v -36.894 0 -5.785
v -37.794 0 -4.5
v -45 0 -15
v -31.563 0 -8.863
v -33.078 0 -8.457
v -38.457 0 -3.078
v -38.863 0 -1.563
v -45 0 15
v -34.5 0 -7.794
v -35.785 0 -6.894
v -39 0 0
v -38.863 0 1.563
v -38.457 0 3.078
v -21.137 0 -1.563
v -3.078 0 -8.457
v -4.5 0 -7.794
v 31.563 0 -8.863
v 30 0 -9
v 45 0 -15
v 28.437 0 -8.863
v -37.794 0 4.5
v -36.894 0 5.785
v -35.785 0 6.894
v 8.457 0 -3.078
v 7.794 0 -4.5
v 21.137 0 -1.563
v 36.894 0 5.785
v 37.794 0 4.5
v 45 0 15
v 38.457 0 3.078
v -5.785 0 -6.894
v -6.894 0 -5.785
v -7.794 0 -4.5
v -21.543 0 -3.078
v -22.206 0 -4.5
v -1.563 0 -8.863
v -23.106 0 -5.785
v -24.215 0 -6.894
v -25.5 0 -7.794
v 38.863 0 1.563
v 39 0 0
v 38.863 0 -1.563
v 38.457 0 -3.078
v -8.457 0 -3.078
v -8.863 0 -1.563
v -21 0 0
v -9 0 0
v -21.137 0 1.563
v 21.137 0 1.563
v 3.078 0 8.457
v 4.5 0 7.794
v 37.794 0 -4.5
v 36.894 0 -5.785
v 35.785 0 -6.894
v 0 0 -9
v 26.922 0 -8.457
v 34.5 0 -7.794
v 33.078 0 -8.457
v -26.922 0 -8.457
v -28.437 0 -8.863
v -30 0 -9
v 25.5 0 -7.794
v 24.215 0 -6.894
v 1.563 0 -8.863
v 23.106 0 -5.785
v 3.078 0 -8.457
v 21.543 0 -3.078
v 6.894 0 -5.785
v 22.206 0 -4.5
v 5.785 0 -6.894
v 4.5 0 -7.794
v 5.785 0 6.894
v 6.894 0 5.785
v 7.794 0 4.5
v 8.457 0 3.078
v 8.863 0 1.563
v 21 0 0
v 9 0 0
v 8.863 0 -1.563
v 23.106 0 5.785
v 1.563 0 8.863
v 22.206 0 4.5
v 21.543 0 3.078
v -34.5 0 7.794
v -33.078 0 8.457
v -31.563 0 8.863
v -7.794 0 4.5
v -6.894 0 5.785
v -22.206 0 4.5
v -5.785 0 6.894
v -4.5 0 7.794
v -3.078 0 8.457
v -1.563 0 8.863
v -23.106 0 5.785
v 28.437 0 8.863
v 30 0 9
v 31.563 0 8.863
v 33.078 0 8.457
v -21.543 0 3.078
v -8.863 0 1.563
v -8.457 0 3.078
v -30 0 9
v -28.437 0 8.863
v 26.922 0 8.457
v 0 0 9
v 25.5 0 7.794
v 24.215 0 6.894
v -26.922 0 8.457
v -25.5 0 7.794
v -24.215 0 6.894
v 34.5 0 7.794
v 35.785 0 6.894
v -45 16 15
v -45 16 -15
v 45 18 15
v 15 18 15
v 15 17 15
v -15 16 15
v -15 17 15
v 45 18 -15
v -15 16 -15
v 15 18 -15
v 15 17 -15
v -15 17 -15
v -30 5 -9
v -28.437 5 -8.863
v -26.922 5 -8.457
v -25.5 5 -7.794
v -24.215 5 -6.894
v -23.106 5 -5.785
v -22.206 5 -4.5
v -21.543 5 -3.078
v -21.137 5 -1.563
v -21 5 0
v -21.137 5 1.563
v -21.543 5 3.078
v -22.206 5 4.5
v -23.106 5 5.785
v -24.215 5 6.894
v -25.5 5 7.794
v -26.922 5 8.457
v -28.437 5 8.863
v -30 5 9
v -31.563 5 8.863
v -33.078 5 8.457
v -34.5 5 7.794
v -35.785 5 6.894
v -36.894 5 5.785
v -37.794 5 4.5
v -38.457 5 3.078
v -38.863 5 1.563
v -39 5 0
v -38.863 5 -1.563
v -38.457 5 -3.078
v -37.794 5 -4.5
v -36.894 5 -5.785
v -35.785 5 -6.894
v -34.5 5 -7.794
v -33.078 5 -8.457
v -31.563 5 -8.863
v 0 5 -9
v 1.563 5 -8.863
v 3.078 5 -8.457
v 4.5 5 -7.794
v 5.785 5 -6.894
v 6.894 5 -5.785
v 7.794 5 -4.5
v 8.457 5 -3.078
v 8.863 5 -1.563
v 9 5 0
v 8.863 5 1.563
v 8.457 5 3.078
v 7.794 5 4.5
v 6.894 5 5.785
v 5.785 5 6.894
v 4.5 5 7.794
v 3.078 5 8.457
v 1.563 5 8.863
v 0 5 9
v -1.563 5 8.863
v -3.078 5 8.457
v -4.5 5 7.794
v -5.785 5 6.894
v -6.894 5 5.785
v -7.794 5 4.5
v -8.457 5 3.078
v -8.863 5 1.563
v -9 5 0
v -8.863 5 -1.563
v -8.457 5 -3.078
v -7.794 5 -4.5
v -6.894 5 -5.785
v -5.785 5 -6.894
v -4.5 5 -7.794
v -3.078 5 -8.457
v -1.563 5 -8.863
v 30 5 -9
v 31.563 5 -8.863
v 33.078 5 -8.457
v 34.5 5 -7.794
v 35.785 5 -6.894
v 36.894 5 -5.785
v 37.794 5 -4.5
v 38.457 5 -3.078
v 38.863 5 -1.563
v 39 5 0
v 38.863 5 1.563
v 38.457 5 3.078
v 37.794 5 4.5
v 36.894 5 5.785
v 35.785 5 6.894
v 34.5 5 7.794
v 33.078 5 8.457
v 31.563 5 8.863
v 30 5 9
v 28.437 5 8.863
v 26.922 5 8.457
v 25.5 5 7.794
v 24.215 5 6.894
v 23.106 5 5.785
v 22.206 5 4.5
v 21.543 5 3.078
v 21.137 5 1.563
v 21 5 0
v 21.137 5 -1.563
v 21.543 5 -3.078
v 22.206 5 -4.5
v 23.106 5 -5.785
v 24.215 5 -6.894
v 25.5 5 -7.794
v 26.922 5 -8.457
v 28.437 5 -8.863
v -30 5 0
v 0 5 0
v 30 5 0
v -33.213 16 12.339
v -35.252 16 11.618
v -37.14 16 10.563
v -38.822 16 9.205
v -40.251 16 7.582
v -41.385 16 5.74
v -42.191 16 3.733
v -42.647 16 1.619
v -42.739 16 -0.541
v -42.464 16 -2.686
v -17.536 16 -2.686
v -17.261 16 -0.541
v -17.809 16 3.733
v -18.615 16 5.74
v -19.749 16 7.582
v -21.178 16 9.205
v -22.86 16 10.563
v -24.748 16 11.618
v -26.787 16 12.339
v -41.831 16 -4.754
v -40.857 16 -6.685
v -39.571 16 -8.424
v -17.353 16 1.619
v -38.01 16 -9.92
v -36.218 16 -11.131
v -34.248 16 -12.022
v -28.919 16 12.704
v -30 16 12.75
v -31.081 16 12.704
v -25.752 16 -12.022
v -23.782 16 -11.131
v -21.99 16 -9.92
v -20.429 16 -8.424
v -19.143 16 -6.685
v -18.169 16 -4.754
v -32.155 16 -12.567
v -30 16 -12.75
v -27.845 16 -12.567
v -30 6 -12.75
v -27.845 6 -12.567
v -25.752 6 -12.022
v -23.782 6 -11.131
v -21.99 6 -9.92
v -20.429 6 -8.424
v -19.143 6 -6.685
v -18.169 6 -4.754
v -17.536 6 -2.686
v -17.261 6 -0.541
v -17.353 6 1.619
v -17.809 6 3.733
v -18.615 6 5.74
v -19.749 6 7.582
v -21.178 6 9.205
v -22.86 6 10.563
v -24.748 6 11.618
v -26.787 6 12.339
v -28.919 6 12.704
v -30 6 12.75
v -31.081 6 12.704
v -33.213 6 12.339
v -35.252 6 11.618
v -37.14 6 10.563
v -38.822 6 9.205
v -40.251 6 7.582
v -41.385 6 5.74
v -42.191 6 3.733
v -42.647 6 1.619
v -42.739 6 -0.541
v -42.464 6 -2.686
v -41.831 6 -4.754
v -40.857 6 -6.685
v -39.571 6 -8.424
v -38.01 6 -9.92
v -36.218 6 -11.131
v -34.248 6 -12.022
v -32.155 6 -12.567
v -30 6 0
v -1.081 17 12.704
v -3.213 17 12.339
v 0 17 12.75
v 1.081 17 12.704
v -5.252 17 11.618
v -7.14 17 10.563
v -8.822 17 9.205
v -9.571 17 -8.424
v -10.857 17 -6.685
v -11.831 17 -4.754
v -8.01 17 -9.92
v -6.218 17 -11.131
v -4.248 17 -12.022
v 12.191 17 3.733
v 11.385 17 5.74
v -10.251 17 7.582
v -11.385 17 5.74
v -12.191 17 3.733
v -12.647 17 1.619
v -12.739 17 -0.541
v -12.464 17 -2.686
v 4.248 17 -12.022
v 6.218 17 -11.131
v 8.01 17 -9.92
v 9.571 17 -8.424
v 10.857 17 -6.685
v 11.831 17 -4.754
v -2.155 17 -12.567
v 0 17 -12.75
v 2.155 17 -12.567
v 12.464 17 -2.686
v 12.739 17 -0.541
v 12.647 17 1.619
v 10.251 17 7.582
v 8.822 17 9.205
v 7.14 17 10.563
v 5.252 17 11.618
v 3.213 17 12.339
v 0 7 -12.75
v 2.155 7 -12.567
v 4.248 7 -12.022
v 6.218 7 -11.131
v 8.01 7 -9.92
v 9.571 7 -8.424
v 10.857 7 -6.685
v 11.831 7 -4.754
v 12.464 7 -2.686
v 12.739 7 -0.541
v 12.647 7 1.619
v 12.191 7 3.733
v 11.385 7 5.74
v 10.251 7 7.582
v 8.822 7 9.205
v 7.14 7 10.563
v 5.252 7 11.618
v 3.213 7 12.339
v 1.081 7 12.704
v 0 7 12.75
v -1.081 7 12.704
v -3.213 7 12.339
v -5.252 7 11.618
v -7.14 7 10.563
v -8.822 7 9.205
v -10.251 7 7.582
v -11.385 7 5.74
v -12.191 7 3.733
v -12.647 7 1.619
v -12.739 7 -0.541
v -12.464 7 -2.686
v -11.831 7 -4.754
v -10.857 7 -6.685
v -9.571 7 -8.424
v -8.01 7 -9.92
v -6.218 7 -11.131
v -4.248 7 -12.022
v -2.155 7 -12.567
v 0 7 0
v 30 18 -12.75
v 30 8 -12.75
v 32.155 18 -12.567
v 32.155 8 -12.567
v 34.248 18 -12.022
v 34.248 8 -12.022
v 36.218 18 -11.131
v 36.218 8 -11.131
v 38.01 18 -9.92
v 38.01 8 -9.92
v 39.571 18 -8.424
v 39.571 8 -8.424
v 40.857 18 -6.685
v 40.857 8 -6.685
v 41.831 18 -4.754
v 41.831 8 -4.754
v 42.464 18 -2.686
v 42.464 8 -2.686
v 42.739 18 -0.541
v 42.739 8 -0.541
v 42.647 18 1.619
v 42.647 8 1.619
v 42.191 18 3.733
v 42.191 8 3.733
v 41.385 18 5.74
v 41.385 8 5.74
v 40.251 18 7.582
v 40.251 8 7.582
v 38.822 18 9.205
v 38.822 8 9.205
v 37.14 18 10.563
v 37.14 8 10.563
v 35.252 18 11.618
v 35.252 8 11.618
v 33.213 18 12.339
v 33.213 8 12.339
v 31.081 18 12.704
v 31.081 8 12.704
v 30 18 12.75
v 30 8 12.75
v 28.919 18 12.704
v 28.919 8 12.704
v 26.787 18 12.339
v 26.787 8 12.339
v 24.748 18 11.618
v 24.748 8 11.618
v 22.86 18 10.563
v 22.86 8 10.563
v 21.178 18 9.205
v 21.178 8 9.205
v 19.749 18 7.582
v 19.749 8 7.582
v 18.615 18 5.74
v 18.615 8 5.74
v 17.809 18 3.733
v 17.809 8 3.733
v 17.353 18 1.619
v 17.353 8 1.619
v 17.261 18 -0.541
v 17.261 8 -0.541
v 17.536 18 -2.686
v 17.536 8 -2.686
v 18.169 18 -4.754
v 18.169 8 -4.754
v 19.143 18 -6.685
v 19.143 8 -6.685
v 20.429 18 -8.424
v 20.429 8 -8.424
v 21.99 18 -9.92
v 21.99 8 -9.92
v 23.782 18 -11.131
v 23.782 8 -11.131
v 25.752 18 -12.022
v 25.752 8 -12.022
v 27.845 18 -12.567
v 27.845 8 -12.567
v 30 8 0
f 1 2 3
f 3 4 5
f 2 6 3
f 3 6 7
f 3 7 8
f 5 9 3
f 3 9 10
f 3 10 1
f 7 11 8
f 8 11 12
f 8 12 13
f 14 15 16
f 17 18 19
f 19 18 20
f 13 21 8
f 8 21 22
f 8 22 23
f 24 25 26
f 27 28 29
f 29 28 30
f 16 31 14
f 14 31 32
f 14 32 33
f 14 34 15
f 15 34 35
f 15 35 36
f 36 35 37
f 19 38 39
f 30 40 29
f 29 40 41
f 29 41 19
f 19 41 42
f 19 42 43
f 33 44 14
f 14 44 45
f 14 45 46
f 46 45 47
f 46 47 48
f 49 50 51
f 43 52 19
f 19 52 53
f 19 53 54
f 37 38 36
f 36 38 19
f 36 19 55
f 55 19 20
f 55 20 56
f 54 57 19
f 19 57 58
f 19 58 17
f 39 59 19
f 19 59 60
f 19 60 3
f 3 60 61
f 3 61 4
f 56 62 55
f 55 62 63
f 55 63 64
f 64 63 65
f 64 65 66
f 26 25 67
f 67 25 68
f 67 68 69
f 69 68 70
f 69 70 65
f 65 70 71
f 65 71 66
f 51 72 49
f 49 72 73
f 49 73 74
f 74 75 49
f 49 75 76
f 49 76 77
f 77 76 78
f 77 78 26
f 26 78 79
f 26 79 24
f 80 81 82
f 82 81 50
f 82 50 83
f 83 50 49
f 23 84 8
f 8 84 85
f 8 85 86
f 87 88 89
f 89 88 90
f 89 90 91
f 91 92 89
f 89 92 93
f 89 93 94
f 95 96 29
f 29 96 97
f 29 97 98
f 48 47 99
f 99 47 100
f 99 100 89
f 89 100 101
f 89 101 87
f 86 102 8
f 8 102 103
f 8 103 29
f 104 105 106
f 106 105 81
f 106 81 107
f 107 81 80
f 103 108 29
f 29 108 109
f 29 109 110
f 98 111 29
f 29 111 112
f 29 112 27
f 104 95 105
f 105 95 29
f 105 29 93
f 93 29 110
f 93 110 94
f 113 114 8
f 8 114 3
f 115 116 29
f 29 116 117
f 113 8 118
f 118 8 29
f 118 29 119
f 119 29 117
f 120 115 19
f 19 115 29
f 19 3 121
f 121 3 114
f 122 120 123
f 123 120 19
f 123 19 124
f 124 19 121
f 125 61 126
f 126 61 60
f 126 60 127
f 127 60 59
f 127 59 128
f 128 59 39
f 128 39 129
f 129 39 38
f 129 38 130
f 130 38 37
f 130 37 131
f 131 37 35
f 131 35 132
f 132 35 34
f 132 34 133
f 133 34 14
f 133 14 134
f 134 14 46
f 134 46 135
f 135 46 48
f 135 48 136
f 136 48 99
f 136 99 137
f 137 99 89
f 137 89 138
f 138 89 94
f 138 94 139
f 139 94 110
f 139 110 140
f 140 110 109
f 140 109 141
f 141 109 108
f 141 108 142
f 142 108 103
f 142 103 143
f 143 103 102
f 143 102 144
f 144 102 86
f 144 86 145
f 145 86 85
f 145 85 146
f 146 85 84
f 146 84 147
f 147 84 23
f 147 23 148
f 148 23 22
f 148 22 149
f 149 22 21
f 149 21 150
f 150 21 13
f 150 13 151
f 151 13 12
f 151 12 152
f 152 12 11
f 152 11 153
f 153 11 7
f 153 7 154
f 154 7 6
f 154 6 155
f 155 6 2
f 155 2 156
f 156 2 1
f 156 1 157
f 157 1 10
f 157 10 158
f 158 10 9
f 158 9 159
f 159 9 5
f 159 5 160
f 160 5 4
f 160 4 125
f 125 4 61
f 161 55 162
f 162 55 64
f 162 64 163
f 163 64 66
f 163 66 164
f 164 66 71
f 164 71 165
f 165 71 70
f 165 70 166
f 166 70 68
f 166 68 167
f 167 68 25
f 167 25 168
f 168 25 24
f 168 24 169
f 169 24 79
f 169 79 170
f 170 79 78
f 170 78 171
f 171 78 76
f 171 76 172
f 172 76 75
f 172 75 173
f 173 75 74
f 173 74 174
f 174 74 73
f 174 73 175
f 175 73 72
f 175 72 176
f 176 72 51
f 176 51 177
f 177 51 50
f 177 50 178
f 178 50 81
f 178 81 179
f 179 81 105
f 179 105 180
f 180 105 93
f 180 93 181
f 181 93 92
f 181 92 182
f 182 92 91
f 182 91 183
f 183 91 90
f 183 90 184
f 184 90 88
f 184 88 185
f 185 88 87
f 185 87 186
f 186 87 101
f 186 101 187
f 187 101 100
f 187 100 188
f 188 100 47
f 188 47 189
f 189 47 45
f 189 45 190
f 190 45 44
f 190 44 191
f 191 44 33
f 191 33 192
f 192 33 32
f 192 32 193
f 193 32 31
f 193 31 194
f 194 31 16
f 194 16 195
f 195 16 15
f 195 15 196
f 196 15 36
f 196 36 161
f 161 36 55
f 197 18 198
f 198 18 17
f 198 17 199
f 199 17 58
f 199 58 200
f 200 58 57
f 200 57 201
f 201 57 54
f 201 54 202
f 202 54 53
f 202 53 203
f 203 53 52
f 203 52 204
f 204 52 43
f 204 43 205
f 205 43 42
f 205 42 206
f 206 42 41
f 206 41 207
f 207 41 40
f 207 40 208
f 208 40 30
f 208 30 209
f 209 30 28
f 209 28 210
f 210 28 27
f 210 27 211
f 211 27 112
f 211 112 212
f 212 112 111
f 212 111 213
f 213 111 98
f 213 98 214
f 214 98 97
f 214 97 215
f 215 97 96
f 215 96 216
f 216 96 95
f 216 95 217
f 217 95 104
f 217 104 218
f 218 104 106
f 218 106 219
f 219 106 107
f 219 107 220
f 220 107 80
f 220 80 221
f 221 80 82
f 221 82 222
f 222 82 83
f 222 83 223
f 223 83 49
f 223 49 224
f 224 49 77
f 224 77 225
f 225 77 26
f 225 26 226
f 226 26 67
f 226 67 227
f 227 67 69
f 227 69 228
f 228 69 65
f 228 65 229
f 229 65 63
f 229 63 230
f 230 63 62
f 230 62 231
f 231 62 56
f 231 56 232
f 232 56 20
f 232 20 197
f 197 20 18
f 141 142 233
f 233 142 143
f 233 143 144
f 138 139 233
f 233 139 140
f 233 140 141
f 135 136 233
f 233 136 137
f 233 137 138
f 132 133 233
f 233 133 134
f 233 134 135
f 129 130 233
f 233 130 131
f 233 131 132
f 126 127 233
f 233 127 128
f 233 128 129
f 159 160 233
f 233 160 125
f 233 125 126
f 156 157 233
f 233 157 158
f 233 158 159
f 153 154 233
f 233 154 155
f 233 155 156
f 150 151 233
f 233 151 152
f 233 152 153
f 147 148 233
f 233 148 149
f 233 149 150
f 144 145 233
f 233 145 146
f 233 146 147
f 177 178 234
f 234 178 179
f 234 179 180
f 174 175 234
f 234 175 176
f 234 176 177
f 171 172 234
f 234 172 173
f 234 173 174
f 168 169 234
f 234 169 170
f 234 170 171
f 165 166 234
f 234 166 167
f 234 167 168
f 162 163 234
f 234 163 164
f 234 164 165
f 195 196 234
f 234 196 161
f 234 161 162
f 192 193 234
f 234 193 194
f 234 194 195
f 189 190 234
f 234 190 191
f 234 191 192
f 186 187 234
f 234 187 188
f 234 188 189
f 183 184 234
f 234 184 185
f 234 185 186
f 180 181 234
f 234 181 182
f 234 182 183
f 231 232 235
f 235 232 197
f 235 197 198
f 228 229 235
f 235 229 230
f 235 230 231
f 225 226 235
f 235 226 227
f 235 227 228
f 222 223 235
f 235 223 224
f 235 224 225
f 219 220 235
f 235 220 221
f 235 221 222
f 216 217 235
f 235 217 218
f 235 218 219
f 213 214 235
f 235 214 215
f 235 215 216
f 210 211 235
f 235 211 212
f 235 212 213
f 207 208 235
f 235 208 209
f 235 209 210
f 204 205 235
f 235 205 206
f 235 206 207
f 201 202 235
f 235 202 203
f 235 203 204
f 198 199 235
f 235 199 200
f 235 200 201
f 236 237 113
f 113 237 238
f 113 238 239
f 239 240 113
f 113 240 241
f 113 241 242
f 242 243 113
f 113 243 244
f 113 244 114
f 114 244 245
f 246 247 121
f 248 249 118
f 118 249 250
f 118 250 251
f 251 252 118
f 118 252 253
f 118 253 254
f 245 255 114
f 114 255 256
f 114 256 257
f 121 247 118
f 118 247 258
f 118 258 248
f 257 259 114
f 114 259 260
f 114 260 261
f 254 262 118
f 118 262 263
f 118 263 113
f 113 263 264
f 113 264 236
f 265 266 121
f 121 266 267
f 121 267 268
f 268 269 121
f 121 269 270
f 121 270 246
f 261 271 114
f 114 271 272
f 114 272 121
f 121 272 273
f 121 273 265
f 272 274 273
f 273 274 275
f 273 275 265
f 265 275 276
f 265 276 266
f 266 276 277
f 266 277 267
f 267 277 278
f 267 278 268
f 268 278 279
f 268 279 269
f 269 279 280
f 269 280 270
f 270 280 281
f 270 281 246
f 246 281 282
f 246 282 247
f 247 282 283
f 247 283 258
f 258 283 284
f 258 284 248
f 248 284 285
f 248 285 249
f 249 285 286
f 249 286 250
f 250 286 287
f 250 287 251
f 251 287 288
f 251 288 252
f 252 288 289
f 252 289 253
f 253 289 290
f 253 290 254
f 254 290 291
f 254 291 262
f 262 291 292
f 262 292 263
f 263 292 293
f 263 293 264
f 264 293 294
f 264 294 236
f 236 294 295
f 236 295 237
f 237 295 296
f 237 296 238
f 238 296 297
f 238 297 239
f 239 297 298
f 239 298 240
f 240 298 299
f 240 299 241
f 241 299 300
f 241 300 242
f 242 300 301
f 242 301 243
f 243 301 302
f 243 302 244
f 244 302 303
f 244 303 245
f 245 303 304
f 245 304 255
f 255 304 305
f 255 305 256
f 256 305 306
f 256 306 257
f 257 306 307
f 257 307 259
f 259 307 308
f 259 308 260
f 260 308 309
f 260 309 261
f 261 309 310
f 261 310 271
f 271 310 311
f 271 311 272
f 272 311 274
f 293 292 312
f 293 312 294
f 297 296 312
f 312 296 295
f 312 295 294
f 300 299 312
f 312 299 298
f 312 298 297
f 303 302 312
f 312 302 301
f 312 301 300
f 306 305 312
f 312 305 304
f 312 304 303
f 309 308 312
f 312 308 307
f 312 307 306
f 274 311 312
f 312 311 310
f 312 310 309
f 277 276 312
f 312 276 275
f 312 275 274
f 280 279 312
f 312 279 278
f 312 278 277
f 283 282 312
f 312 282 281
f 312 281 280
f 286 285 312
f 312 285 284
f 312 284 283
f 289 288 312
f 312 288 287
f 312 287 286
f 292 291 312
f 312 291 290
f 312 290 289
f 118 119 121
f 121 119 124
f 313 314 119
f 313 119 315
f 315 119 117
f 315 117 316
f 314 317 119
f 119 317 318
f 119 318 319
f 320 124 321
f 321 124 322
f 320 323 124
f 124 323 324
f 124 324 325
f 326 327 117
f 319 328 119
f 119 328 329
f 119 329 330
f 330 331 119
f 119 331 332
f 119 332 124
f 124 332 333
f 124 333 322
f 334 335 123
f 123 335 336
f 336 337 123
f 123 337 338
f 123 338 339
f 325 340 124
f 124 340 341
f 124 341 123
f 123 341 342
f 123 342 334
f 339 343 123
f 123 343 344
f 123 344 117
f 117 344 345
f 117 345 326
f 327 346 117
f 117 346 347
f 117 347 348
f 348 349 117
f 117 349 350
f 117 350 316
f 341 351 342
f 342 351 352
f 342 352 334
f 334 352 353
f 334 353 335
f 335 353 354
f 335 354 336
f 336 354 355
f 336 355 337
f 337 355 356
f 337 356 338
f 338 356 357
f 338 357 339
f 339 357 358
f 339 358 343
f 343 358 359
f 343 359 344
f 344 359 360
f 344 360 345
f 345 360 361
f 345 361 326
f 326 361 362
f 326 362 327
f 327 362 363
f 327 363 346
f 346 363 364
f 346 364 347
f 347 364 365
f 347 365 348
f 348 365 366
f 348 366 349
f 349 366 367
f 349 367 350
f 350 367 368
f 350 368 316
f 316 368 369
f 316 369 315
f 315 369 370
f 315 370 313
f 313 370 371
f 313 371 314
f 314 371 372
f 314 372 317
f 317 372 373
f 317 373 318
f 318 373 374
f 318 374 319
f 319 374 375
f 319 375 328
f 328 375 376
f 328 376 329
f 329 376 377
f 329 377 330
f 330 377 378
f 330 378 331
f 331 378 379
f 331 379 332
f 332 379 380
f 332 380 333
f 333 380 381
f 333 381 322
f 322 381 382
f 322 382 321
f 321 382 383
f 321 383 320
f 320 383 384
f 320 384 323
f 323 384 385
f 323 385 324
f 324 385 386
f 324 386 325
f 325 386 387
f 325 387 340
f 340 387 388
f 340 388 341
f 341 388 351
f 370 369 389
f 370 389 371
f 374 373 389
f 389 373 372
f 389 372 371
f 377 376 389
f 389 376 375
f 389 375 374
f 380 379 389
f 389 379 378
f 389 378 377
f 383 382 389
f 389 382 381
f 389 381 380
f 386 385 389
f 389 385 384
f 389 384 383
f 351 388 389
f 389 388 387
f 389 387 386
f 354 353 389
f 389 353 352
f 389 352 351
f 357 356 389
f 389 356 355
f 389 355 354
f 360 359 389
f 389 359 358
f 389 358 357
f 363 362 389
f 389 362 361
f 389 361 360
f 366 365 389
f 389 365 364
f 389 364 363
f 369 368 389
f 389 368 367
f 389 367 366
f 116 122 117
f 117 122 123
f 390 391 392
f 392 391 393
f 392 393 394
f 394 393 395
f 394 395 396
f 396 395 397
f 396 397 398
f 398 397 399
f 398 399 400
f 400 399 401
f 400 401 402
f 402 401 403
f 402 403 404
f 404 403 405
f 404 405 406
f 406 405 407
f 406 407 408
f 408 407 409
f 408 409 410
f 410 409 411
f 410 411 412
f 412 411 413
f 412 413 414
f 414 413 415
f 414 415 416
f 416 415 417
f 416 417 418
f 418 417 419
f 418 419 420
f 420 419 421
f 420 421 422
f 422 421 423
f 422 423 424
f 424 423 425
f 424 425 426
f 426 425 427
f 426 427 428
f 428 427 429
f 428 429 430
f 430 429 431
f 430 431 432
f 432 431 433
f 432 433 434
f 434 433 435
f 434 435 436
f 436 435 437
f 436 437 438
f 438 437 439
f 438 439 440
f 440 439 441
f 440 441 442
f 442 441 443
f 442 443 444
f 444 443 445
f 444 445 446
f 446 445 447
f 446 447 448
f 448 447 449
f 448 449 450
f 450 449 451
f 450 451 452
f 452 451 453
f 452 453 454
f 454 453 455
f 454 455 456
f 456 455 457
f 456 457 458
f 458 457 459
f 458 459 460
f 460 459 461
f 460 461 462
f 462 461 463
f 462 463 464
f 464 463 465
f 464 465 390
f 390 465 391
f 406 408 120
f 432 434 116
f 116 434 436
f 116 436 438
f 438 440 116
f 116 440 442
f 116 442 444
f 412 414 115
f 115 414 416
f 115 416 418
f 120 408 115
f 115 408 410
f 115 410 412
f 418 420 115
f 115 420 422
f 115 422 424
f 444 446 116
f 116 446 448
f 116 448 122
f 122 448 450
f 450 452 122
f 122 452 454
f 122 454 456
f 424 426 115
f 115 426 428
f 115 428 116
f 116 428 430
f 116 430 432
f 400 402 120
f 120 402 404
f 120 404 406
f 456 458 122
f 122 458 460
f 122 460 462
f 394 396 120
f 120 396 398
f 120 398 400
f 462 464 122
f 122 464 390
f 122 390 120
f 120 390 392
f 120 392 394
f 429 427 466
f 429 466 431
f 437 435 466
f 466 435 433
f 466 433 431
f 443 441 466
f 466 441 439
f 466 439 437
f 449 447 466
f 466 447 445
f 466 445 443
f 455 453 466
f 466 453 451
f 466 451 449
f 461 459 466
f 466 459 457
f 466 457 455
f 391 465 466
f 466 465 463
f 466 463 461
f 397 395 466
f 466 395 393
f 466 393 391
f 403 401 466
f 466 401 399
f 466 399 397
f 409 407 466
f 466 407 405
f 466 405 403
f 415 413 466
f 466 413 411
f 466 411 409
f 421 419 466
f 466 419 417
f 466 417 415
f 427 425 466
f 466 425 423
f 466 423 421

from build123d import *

# Parameters (mm, degrees)
SKETCH1_W           = 90
SKETCH1_H           = 30
SKETCH1_R           = 9
BOSS_EXTRUDE1_DEPTH = 5
SKETCH2_W           = 30
SKETCH2_H           = 30
BOSS_EXTRUDE2_DEPTH = 1
SKETCH3_W           = 30
SKETCH3_H           = 30
BOSS_EXTRUDE3_DEPTH = 2
SKETCH4_W           = 30
SKETCH4_H           = 30
BOSS_EXTRUDE4_DEPTH = 3
SKETCH5_W           = 30
SKETCH5_H           = 30
SKETCH5_R           = 12.75
BOSS_EXTRUDE5_DEPTH = 10
SKETCH6_W           = 30
SKETCH6_H           = 30
SKETCH6_R           = 12.75
BOSS_EXTRUDE6_DEPTH = 10
SKETCH7_W           = 30
SKETCH7_H           = 30
SKETCH7_R           = 12.75
BOSS_EXTRUDE7_DEPTH = 10


with BuildPart() as part:
    # Sketch1 → Boss-Extrude1 (new body)
    with BuildSketch(Plane(origin=(0, 0, 0), x_dir=(1, 0, 0), z_dir=(0, 1, 0))):
        Rectangle(SKETCH1_W, SKETCH1_H)
        with Locations(Location((-30, 0, 0), (0, 0, 270))):
            Circle(SKETCH1_R, mode=Mode.SUBTRACT)
        with Locations(Location((0, 0, 0), (0, 0, 270))):
            Circle(SKETCH1_R, mode=Mode.SUBTRACT)
        with Locations(Location((30, 0, 0), (0, 0, 270))):
            Circle(SKETCH1_R, mode=Mode.SUBTRACT)
    extrude(amount=BOSS_EXTRUDE1_DEPTH)

    # Sketch2 → Boss-Extrude2 (add)
    with BuildSketch(Plane(origin=(0, 5, 0), x_dir=(1, 0, 0), z_dir=(0, 1, 0))):
        with Locations((-30, 0)):
            Rectangle(SKETCH2_W, SKETCH2_H)
    extrude(amount=BOSS_EXTRUDE2_DEPTH)

    # Sketch3 → Boss-Extrude3 (add)
    with BuildSketch(Plane(origin=(0, 5, 0), x_dir=(1, 0, 0), z_dir=(0, 1, 0))):
        Rectangle(SKETCH3_W, SKETCH3_H)
    extrude(amount=BOSS_EXTRUDE3_DEPTH)

    # Sketch4 → Boss-Extrude4 (add)
    with BuildSketch(Plane(origin=(0, 5, 0), x_dir=(1, 0, 0), z_dir=(0, 1, 0))):
        with Locations((30, 0)):
            Rectangle(SKETCH4_W, SKETCH4_H)
    extrude(amount=BOSS_EXTRUDE4_DEPTH)

    # Sketch5 → Boss-Extrude5 (add)
    with BuildSketch(Plane(origin=(0, 6, 0), x_dir=(1, 0, 0), z_dir=(0, 1, 0))):
        with Locations((-30, 0)):
            Rectangle(SKETCH5_W, SKETCH5_H)
        with Locations(Location((-30, 0, 0), (0, 0, 270))):
            Circle(SKETCH5_R, mode=Mode.SUBTRACT)
    extrude(amount=BOSS_EXTRUDE5_DEPTH)

    # Sketch6 → Boss-Extrude6 (add)
    with BuildSketch(Plane(origin=(0, 7, 0), x_dir=(1, 0, 0), z_dir=(0, 1, 0))):
        Rectangle(SKETCH6_W, SKETCH6_H)
        with Locations(Location((0, 0, 0), (0, 0, 270))):
            Circle(SKETCH6_R, mode=Mode.SUBTRACT)
    extrude(amount=BOSS_EXTRUDE6_DEPTH)

    # Sketch7 → Boss-Extrude7 (add)
    with BuildSketch(Plane(origin=(0, 8, 0), x_dir=(1, 0, 0), z_dir=(0, 1, 0))):
        with Locations((30, 0)):
            Rectangle(SKETCH7_W, SKETCH7_H)
        with Locations(Location((30, 0, 0), (0, 0, 270))):
            Circle(SKETCH7_R, mode=Mode.SUBTRACT)
    extrude(amount=BOSS_EXTRUDE7_DEPTH)


solid = part.part
